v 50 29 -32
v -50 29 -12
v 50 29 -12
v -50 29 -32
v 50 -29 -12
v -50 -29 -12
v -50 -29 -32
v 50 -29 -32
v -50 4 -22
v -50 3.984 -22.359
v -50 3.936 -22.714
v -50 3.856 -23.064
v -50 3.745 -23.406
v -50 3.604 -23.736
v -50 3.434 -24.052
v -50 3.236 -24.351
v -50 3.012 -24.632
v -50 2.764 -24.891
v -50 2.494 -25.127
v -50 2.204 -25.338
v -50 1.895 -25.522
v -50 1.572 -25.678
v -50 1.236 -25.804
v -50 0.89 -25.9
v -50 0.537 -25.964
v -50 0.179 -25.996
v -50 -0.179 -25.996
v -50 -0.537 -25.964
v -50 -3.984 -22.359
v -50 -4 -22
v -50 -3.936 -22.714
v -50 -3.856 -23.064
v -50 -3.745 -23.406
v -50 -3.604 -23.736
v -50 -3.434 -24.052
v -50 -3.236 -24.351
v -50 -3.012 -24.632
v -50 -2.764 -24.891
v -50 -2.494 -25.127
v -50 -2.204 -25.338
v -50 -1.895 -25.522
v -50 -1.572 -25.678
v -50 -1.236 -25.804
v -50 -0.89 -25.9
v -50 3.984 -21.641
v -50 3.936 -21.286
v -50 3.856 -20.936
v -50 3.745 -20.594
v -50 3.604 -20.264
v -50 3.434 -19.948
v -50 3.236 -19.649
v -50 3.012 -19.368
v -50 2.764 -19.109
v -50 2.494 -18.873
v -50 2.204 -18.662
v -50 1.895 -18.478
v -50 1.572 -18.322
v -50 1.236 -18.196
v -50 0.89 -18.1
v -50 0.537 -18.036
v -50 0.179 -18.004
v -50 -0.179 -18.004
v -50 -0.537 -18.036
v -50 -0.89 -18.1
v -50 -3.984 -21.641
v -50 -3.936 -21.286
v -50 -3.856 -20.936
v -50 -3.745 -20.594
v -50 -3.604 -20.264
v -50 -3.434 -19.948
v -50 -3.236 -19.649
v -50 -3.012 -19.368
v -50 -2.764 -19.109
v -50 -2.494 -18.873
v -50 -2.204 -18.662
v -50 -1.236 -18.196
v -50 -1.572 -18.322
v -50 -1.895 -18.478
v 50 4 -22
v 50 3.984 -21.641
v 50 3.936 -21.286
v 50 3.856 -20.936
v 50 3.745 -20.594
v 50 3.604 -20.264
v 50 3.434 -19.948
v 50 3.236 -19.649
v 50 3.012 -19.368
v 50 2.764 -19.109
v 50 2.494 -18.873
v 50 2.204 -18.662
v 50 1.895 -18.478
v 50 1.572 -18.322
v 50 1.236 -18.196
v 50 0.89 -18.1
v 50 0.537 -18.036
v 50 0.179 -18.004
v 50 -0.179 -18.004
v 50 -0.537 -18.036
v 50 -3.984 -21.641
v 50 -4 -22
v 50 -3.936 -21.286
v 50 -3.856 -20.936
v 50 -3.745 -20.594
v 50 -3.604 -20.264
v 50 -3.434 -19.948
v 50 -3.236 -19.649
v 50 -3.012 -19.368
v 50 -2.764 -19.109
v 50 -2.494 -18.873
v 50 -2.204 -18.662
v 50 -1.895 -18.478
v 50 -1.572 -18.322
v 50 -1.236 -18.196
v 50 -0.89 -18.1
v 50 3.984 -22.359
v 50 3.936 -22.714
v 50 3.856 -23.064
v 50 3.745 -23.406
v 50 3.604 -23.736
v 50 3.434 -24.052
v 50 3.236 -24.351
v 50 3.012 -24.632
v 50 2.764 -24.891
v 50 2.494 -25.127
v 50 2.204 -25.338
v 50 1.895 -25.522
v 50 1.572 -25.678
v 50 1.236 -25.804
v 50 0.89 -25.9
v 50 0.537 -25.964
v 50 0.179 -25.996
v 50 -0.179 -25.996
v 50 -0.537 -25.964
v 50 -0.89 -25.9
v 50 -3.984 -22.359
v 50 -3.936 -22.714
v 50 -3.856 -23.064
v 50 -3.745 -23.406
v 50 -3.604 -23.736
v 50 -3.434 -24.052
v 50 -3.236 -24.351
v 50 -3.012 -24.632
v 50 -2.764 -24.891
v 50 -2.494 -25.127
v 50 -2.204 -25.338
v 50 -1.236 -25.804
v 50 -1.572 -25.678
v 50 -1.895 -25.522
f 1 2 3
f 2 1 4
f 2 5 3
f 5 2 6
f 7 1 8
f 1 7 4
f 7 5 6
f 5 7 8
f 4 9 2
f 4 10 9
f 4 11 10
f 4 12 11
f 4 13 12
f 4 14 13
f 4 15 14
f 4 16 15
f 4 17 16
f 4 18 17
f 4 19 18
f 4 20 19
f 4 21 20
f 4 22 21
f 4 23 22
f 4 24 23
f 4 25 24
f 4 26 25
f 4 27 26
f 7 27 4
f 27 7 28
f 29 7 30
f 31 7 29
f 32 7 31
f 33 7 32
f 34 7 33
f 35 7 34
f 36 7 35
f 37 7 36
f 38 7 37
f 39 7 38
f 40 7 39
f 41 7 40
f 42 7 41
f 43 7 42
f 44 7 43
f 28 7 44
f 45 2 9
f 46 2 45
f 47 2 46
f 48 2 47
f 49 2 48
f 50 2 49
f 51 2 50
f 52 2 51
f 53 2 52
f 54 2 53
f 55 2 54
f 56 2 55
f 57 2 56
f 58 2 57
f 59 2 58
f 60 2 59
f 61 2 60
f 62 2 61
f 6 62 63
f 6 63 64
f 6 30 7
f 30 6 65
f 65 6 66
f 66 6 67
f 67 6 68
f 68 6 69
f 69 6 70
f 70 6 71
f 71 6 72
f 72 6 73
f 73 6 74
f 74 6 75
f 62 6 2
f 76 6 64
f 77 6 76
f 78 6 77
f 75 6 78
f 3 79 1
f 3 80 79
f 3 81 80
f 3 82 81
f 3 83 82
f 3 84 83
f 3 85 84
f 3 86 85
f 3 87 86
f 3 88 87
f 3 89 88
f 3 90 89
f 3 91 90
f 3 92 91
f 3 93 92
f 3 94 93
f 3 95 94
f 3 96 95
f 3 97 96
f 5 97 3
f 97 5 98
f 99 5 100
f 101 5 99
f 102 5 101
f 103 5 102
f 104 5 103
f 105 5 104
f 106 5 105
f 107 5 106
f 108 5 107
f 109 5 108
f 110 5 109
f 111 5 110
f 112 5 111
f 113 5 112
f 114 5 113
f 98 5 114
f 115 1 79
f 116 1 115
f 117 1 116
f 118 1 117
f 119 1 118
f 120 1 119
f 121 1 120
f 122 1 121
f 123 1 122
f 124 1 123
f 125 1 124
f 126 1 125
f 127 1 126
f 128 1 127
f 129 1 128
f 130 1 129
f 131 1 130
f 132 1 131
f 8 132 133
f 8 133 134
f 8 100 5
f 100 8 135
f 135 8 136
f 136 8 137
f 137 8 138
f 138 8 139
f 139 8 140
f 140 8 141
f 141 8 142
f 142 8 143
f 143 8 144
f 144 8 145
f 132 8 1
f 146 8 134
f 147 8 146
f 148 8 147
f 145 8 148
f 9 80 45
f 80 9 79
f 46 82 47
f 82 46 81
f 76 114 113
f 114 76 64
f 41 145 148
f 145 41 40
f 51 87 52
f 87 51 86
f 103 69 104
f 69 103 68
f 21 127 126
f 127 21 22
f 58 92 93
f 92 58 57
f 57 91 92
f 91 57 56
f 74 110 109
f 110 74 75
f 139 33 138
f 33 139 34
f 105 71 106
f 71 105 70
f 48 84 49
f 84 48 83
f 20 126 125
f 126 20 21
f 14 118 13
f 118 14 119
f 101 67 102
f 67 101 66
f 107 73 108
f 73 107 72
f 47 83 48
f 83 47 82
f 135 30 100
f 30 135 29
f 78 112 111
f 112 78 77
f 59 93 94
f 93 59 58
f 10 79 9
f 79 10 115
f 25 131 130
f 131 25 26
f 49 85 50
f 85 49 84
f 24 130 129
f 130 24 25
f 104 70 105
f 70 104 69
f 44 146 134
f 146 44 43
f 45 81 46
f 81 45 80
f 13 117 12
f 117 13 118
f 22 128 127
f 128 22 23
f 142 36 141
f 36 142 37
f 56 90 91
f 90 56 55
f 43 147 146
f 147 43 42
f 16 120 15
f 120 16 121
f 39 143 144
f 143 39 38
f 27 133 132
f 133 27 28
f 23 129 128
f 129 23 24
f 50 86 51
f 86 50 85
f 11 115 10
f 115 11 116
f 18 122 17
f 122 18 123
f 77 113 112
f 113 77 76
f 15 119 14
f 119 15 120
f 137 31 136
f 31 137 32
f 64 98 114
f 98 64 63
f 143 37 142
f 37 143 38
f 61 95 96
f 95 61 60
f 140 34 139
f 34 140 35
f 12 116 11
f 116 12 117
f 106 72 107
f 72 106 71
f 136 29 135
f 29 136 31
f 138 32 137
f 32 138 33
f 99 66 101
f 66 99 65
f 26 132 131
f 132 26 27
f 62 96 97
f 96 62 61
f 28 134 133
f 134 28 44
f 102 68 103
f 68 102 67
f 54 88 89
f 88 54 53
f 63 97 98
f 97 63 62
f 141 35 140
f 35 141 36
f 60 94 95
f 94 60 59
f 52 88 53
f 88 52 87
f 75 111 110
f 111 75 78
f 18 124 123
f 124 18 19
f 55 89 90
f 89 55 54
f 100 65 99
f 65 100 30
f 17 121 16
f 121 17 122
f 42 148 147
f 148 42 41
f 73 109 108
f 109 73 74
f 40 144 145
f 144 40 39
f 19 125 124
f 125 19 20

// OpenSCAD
/* Marc Amil 
Project date: 20.2.2021
Deadline: 23.2.2021

PROJECT: ABRASIVE TESTING:  Sled
*/
/////////PARAMETERS////////////////
// 1 unit = 1 mm
$fn = 70;

// SLED PARAMETERS 

sled_width =  58;
sled_height = 100;
sled_depth = 20;
sled_hole_height = 150; 
sled_hole_radius = 4;


rotate([0,0,90]) {
   translate([-29,-50,-32]) {
    sled();
    }
}

 module sled(){
    difference() {
   cube([sled_width, sled_height, sled_depth]);
      rotate([90, , ]) {
    translate([29, 10, -120]) {
      cylinder(h = sled_hole_height, r  = sled_hole_radius);
            }
        }
    }
}
